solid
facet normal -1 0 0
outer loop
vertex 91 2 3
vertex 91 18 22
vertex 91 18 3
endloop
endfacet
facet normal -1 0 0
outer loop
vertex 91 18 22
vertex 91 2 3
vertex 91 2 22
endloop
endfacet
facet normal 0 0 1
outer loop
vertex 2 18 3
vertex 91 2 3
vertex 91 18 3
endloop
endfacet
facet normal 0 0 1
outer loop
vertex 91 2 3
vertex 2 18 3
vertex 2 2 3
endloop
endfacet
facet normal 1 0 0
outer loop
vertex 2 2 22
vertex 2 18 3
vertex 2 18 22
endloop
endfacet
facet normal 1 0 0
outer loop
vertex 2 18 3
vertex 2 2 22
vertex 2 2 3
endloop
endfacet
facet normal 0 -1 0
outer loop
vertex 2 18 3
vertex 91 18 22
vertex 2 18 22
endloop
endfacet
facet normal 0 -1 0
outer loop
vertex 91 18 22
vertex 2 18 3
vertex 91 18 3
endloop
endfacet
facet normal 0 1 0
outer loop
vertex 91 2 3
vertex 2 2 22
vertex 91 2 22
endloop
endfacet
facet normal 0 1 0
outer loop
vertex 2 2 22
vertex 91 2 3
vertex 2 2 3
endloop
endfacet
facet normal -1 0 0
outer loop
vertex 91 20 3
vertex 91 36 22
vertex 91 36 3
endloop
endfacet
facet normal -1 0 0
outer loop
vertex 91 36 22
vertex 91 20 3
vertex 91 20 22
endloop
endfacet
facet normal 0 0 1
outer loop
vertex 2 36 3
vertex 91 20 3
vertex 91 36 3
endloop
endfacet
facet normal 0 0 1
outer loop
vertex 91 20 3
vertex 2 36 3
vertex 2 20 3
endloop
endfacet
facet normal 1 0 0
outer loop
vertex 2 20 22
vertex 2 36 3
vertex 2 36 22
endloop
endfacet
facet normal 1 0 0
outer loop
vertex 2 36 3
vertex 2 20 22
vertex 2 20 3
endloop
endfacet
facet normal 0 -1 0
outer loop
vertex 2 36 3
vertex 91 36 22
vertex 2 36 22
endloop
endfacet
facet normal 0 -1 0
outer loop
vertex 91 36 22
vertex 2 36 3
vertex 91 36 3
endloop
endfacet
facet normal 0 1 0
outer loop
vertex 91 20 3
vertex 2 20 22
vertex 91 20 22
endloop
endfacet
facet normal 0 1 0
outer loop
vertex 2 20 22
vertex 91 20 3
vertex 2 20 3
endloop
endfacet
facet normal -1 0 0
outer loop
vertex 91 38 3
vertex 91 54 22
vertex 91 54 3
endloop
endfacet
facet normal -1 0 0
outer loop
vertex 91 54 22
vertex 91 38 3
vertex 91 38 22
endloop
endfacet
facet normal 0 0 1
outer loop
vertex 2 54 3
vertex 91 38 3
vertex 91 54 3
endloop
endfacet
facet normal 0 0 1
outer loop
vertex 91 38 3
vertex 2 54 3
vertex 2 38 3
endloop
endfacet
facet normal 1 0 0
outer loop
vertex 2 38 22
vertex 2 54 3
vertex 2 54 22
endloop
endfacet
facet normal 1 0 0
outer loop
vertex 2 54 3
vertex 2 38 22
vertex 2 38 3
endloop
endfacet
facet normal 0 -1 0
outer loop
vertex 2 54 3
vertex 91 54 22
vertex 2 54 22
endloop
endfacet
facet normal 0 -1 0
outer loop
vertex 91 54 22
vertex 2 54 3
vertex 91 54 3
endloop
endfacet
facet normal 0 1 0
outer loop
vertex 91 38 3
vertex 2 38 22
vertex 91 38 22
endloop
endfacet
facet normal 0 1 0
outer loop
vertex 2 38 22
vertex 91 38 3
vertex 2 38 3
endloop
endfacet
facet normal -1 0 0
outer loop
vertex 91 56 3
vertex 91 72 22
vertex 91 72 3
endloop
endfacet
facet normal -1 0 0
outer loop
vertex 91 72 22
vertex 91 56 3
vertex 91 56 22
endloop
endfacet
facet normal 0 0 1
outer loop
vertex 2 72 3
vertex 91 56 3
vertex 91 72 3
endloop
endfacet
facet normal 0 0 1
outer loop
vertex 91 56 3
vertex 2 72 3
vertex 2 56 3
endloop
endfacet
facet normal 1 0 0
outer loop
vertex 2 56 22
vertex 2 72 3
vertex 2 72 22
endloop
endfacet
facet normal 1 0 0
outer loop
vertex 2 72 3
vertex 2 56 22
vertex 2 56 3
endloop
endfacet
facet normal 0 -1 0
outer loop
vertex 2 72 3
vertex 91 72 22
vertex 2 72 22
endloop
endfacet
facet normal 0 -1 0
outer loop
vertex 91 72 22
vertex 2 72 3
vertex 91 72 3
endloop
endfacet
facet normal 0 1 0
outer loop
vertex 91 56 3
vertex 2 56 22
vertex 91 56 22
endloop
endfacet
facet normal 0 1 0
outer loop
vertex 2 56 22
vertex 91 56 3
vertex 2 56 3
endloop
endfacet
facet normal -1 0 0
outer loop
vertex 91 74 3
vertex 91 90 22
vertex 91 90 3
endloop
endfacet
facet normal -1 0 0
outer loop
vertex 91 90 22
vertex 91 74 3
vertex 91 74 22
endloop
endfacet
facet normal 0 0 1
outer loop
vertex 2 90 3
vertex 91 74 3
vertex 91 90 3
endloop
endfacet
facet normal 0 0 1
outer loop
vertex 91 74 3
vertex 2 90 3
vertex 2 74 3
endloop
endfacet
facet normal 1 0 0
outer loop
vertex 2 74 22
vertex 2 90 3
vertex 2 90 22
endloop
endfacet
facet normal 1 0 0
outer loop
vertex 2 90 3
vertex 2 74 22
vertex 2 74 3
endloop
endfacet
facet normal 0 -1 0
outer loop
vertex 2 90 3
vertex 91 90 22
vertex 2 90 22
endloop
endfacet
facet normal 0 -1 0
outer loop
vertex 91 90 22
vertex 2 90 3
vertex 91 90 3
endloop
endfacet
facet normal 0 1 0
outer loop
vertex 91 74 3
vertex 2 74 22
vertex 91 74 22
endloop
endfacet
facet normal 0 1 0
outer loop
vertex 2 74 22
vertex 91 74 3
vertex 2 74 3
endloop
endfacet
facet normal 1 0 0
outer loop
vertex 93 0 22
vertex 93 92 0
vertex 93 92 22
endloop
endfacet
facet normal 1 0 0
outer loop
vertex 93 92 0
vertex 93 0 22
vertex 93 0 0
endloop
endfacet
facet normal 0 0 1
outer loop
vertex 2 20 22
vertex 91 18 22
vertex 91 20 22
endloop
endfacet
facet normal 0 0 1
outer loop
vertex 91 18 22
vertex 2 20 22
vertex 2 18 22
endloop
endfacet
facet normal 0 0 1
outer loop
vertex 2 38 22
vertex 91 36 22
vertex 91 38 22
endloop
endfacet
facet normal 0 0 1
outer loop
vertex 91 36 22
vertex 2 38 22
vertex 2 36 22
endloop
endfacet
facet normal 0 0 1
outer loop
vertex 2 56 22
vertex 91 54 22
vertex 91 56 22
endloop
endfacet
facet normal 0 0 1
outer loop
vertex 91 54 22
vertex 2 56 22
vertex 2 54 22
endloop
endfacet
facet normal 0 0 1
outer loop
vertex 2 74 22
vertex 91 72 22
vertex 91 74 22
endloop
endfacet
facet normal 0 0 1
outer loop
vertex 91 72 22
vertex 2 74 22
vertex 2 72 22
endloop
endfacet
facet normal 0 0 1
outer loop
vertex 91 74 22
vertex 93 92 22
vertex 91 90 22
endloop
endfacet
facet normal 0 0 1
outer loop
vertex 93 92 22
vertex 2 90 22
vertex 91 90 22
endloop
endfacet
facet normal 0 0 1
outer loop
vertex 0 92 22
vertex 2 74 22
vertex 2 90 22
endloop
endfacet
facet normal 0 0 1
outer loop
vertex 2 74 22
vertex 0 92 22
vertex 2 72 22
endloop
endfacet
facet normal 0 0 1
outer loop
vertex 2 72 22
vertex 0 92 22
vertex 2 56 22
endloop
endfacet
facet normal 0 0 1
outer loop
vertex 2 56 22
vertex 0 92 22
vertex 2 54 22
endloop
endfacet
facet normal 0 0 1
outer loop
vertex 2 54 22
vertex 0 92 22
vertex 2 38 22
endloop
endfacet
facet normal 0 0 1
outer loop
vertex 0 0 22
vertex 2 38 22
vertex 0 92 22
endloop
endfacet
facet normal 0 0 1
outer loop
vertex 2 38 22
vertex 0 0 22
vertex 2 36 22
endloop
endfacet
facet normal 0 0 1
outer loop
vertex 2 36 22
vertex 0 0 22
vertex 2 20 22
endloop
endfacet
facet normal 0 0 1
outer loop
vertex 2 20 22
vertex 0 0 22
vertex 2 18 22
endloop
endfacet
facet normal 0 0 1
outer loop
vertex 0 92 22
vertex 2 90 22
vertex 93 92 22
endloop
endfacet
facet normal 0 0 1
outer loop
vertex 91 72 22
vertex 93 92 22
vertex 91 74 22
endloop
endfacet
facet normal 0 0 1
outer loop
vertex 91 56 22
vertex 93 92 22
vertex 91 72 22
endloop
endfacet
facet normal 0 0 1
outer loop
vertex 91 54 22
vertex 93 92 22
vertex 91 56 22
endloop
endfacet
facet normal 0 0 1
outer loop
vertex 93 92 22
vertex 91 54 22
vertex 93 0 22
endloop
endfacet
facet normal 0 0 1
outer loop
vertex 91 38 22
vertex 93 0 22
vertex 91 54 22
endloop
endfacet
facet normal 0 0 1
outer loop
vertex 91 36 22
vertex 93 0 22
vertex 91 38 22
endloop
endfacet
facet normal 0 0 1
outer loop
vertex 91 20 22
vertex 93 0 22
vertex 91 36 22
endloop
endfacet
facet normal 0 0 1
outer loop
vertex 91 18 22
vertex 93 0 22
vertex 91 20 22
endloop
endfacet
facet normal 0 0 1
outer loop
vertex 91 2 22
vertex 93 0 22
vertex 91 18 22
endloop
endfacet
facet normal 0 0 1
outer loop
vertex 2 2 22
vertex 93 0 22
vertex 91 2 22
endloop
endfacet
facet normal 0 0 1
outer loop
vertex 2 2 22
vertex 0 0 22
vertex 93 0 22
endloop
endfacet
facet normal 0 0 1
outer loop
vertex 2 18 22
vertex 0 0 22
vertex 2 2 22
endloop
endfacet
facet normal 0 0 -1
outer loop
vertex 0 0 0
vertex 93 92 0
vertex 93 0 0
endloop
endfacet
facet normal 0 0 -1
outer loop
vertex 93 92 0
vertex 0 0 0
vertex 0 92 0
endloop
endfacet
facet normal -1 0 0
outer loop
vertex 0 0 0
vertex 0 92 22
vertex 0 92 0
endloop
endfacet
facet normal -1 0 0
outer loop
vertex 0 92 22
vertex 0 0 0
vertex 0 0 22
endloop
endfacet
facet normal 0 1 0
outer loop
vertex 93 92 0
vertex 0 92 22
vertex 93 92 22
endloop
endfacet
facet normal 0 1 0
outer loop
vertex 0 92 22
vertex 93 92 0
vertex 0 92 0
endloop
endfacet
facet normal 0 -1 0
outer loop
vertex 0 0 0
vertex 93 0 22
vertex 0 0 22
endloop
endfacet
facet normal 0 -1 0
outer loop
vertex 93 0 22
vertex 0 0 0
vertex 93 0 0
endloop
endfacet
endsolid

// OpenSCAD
// Brother P-Touch Cartridge Holder version 1.0
// Design by Patrick Connelly (patrick@deadlypenguin.com)

// preview[view:south east, tilt:top diagonal]

/* [Cartridge] */
number_of_cartridges = 5; //[2:15]

/* [Hidden] */
cart_width = 89;
cart_depth = 16;
cart_height = 20;

cart_gap = 2;

bottom_height = 2;

base_width = cart_width + cart_gap * 2;
base_depth = (cart_depth + cart_gap) * number_of_cartridges + cart_gap;
base_height = cart_height + bottom_height;

module base() {
	cube([base_width, base_depth, base_height]);
}

module pockets() {
    union() {
		for (i = [0:number_of_cartridges - 1]) {
            current_y = cart_gap + ((cart_depth + cart_gap) * i);
			translate([cart_gap, current_y, base_height - cart_height + 1])
			cube([cart_width, cart_depth, cart_height + 1]);
        }
    }
}

difference() {
    base();
    pockets();
}
